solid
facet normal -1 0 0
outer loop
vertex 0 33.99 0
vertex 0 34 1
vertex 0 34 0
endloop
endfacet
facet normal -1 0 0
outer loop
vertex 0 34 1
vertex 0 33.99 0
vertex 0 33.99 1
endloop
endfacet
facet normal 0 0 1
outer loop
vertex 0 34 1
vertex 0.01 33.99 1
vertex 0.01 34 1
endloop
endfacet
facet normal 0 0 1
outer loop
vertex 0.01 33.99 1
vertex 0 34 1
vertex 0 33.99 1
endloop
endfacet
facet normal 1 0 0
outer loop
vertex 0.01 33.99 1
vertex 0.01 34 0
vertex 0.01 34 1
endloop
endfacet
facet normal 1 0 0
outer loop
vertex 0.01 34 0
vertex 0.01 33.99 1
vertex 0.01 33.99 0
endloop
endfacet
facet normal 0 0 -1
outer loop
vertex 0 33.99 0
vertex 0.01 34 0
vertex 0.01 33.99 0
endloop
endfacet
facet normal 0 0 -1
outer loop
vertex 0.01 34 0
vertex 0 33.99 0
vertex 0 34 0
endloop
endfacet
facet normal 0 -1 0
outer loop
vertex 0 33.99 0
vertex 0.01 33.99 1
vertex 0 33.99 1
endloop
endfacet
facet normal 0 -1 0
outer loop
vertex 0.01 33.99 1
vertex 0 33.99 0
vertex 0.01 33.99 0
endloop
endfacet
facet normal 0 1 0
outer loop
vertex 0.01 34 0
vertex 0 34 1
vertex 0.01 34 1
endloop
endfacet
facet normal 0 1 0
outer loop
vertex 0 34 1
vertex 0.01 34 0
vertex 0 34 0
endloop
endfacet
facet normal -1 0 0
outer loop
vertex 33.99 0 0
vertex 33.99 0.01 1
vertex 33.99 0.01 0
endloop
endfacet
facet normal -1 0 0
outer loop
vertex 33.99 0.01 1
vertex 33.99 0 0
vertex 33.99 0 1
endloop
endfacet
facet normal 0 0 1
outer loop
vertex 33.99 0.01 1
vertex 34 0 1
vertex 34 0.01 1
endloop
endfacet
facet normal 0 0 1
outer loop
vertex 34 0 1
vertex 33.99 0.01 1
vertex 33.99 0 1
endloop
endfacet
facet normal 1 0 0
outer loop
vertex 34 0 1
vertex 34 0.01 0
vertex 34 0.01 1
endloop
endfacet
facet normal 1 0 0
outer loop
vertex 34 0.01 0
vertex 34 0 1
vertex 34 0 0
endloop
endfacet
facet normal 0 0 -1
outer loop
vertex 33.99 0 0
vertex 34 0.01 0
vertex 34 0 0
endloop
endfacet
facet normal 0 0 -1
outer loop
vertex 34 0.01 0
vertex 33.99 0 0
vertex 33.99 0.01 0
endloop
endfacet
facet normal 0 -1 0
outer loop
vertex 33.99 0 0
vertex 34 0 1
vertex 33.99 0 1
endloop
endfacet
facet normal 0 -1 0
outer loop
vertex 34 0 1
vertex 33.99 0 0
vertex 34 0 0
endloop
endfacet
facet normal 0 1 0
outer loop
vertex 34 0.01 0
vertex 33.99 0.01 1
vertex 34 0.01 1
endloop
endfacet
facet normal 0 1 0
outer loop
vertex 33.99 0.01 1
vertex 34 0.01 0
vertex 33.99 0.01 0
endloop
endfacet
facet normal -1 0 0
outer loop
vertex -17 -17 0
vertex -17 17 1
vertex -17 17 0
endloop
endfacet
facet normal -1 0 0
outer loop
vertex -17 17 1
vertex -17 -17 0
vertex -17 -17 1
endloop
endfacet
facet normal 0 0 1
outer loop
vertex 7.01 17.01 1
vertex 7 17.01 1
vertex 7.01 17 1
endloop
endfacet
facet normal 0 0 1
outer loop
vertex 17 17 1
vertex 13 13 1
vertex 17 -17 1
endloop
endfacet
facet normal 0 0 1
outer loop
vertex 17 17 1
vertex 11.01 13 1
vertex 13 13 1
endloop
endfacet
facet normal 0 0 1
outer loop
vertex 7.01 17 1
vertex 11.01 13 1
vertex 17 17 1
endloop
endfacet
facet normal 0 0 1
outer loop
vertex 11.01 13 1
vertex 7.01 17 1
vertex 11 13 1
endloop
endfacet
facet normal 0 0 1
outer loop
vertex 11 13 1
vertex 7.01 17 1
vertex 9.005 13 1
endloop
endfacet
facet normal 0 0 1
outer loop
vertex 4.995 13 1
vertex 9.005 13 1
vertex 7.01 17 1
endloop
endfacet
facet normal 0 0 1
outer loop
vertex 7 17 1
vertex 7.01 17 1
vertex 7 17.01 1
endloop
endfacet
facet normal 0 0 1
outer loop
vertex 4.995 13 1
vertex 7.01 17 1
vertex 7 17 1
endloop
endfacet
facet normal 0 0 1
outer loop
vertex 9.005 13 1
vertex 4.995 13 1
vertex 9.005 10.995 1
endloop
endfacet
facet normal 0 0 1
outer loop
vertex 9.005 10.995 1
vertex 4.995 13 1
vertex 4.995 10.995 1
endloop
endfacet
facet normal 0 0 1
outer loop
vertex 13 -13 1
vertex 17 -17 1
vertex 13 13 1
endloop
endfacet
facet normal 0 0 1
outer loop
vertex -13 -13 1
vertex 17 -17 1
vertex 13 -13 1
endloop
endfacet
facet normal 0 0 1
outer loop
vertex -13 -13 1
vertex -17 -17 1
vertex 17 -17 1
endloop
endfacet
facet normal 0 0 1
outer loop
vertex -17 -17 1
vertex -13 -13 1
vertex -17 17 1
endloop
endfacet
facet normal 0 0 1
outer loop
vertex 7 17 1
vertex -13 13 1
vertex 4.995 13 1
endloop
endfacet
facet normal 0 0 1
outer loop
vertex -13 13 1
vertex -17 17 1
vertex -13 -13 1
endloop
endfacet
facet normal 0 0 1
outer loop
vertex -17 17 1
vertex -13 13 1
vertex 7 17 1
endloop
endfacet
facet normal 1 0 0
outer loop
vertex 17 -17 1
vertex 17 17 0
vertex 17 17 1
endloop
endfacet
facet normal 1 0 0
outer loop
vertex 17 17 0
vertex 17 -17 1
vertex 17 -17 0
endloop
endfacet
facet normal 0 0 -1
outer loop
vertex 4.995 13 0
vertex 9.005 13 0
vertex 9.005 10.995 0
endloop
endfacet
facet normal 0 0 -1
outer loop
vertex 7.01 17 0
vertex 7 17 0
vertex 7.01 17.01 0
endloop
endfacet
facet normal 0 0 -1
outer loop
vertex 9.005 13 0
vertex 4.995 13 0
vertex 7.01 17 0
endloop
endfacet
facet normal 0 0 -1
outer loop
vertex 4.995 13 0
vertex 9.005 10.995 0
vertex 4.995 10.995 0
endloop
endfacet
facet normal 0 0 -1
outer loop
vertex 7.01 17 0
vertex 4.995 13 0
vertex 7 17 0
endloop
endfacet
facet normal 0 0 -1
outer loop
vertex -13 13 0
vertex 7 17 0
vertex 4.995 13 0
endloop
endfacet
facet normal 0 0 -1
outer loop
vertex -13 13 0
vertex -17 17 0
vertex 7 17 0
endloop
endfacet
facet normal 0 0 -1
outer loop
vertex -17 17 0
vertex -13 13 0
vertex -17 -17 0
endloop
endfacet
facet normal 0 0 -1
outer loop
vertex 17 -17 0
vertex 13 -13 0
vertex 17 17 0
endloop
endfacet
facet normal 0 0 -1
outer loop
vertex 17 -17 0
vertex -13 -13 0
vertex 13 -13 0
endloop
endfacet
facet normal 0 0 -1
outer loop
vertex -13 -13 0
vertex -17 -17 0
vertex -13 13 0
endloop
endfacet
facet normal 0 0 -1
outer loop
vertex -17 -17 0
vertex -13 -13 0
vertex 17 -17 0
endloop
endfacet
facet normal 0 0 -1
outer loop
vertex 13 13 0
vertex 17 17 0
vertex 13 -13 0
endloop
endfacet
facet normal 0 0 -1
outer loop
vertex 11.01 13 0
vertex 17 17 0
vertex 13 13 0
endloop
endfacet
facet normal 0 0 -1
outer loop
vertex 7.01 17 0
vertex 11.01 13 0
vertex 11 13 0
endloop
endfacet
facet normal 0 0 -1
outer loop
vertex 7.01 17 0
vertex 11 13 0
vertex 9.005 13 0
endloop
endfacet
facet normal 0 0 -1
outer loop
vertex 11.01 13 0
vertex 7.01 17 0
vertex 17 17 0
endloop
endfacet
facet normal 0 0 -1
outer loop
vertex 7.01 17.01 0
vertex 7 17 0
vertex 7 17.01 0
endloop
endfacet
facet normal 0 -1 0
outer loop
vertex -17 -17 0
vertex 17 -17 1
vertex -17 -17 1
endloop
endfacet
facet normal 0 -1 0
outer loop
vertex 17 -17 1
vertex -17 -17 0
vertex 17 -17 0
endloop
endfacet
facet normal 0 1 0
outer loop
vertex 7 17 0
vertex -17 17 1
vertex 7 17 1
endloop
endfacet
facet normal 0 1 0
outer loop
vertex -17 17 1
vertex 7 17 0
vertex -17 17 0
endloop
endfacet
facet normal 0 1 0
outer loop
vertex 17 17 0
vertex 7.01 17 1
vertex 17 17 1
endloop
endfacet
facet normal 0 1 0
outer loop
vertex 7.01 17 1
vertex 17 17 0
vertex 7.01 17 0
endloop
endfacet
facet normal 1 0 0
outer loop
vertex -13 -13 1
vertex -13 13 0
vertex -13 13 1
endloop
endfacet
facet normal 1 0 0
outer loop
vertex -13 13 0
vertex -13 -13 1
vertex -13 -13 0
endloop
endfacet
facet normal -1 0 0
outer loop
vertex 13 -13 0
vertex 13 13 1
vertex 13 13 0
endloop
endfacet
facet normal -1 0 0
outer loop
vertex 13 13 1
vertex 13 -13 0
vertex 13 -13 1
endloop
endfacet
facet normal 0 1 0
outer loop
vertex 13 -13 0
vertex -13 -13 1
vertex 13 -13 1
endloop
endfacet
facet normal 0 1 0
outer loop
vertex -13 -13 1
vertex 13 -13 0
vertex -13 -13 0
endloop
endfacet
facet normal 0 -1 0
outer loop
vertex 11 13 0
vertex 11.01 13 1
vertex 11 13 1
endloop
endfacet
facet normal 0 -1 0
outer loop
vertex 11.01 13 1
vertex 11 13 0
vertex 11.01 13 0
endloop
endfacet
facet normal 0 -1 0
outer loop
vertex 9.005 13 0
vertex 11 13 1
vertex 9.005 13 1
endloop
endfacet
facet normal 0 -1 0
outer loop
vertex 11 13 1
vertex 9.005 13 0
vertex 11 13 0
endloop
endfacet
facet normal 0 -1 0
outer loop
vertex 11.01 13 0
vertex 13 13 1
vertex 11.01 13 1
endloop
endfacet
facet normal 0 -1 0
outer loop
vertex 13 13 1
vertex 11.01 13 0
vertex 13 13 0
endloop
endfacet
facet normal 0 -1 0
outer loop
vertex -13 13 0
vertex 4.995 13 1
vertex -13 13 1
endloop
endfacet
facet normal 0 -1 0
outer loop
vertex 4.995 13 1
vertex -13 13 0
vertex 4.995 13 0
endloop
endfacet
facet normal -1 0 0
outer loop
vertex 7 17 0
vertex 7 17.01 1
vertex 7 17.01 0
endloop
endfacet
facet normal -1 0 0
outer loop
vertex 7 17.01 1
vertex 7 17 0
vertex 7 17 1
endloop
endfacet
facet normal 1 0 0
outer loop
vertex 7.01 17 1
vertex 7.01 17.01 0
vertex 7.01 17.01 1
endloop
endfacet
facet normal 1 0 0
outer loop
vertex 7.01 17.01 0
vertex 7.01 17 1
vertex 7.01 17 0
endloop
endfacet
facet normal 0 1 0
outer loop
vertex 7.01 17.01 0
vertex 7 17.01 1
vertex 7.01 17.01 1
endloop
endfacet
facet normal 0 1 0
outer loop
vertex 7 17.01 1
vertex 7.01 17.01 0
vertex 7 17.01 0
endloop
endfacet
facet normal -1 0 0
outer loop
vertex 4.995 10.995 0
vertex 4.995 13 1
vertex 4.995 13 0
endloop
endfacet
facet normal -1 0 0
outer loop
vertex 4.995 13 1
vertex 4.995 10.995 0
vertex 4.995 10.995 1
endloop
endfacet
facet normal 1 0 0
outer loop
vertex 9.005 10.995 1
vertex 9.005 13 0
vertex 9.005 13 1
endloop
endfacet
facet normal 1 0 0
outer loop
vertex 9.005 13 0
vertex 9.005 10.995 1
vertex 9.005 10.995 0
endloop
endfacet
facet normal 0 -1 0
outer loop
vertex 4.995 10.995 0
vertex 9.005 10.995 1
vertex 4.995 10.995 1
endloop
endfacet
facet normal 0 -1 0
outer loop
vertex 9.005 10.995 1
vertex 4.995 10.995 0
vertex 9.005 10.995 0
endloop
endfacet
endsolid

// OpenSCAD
// Test first layer height. 
//
// Width of sides shoudl be close to 3mm. E.g. 3.1mm is good. 3.6 means 
// first layer is too smasshed.
// 
// A good first layer should be flat but the individual filament strands
// shoudl be visible.

l = 34;  // side length
w = 4;   // width
h = 1;   // height

eps = 0+0.01;

//module triangle(l, h)  {
//  hull() {
//    translate([0, l-eps, 0]) cube([eps, eps, h]);  
//    translate([l-eps, 0, 0])cube([eps, eps, h]);  
//    cube([eps, eps, h]);  
//  }
//}

module square(l, h)  {
  //hull() {
    translate([0, l-eps, 0]) cube([eps, eps, h]);  
    translate([l-eps, 0, 0])cube([eps, eps, h]);  
    translate([-l/2, -l/2, 0]) cube([l, l, h]);  
  //}
}

//difference() {
//  triangle(l, h);
//  translate([w, w, -eps]) triangle(l-w-w-w*sqrt(2), h+2*eps); 
//}
  
difference() {
 square(l, h);
 translate([0, 0, -eps]) square(l-2*w, h+2*eps); 
}
translate([l/2-2.5*w, l/2-w, 0]) square(w+eps, h);
